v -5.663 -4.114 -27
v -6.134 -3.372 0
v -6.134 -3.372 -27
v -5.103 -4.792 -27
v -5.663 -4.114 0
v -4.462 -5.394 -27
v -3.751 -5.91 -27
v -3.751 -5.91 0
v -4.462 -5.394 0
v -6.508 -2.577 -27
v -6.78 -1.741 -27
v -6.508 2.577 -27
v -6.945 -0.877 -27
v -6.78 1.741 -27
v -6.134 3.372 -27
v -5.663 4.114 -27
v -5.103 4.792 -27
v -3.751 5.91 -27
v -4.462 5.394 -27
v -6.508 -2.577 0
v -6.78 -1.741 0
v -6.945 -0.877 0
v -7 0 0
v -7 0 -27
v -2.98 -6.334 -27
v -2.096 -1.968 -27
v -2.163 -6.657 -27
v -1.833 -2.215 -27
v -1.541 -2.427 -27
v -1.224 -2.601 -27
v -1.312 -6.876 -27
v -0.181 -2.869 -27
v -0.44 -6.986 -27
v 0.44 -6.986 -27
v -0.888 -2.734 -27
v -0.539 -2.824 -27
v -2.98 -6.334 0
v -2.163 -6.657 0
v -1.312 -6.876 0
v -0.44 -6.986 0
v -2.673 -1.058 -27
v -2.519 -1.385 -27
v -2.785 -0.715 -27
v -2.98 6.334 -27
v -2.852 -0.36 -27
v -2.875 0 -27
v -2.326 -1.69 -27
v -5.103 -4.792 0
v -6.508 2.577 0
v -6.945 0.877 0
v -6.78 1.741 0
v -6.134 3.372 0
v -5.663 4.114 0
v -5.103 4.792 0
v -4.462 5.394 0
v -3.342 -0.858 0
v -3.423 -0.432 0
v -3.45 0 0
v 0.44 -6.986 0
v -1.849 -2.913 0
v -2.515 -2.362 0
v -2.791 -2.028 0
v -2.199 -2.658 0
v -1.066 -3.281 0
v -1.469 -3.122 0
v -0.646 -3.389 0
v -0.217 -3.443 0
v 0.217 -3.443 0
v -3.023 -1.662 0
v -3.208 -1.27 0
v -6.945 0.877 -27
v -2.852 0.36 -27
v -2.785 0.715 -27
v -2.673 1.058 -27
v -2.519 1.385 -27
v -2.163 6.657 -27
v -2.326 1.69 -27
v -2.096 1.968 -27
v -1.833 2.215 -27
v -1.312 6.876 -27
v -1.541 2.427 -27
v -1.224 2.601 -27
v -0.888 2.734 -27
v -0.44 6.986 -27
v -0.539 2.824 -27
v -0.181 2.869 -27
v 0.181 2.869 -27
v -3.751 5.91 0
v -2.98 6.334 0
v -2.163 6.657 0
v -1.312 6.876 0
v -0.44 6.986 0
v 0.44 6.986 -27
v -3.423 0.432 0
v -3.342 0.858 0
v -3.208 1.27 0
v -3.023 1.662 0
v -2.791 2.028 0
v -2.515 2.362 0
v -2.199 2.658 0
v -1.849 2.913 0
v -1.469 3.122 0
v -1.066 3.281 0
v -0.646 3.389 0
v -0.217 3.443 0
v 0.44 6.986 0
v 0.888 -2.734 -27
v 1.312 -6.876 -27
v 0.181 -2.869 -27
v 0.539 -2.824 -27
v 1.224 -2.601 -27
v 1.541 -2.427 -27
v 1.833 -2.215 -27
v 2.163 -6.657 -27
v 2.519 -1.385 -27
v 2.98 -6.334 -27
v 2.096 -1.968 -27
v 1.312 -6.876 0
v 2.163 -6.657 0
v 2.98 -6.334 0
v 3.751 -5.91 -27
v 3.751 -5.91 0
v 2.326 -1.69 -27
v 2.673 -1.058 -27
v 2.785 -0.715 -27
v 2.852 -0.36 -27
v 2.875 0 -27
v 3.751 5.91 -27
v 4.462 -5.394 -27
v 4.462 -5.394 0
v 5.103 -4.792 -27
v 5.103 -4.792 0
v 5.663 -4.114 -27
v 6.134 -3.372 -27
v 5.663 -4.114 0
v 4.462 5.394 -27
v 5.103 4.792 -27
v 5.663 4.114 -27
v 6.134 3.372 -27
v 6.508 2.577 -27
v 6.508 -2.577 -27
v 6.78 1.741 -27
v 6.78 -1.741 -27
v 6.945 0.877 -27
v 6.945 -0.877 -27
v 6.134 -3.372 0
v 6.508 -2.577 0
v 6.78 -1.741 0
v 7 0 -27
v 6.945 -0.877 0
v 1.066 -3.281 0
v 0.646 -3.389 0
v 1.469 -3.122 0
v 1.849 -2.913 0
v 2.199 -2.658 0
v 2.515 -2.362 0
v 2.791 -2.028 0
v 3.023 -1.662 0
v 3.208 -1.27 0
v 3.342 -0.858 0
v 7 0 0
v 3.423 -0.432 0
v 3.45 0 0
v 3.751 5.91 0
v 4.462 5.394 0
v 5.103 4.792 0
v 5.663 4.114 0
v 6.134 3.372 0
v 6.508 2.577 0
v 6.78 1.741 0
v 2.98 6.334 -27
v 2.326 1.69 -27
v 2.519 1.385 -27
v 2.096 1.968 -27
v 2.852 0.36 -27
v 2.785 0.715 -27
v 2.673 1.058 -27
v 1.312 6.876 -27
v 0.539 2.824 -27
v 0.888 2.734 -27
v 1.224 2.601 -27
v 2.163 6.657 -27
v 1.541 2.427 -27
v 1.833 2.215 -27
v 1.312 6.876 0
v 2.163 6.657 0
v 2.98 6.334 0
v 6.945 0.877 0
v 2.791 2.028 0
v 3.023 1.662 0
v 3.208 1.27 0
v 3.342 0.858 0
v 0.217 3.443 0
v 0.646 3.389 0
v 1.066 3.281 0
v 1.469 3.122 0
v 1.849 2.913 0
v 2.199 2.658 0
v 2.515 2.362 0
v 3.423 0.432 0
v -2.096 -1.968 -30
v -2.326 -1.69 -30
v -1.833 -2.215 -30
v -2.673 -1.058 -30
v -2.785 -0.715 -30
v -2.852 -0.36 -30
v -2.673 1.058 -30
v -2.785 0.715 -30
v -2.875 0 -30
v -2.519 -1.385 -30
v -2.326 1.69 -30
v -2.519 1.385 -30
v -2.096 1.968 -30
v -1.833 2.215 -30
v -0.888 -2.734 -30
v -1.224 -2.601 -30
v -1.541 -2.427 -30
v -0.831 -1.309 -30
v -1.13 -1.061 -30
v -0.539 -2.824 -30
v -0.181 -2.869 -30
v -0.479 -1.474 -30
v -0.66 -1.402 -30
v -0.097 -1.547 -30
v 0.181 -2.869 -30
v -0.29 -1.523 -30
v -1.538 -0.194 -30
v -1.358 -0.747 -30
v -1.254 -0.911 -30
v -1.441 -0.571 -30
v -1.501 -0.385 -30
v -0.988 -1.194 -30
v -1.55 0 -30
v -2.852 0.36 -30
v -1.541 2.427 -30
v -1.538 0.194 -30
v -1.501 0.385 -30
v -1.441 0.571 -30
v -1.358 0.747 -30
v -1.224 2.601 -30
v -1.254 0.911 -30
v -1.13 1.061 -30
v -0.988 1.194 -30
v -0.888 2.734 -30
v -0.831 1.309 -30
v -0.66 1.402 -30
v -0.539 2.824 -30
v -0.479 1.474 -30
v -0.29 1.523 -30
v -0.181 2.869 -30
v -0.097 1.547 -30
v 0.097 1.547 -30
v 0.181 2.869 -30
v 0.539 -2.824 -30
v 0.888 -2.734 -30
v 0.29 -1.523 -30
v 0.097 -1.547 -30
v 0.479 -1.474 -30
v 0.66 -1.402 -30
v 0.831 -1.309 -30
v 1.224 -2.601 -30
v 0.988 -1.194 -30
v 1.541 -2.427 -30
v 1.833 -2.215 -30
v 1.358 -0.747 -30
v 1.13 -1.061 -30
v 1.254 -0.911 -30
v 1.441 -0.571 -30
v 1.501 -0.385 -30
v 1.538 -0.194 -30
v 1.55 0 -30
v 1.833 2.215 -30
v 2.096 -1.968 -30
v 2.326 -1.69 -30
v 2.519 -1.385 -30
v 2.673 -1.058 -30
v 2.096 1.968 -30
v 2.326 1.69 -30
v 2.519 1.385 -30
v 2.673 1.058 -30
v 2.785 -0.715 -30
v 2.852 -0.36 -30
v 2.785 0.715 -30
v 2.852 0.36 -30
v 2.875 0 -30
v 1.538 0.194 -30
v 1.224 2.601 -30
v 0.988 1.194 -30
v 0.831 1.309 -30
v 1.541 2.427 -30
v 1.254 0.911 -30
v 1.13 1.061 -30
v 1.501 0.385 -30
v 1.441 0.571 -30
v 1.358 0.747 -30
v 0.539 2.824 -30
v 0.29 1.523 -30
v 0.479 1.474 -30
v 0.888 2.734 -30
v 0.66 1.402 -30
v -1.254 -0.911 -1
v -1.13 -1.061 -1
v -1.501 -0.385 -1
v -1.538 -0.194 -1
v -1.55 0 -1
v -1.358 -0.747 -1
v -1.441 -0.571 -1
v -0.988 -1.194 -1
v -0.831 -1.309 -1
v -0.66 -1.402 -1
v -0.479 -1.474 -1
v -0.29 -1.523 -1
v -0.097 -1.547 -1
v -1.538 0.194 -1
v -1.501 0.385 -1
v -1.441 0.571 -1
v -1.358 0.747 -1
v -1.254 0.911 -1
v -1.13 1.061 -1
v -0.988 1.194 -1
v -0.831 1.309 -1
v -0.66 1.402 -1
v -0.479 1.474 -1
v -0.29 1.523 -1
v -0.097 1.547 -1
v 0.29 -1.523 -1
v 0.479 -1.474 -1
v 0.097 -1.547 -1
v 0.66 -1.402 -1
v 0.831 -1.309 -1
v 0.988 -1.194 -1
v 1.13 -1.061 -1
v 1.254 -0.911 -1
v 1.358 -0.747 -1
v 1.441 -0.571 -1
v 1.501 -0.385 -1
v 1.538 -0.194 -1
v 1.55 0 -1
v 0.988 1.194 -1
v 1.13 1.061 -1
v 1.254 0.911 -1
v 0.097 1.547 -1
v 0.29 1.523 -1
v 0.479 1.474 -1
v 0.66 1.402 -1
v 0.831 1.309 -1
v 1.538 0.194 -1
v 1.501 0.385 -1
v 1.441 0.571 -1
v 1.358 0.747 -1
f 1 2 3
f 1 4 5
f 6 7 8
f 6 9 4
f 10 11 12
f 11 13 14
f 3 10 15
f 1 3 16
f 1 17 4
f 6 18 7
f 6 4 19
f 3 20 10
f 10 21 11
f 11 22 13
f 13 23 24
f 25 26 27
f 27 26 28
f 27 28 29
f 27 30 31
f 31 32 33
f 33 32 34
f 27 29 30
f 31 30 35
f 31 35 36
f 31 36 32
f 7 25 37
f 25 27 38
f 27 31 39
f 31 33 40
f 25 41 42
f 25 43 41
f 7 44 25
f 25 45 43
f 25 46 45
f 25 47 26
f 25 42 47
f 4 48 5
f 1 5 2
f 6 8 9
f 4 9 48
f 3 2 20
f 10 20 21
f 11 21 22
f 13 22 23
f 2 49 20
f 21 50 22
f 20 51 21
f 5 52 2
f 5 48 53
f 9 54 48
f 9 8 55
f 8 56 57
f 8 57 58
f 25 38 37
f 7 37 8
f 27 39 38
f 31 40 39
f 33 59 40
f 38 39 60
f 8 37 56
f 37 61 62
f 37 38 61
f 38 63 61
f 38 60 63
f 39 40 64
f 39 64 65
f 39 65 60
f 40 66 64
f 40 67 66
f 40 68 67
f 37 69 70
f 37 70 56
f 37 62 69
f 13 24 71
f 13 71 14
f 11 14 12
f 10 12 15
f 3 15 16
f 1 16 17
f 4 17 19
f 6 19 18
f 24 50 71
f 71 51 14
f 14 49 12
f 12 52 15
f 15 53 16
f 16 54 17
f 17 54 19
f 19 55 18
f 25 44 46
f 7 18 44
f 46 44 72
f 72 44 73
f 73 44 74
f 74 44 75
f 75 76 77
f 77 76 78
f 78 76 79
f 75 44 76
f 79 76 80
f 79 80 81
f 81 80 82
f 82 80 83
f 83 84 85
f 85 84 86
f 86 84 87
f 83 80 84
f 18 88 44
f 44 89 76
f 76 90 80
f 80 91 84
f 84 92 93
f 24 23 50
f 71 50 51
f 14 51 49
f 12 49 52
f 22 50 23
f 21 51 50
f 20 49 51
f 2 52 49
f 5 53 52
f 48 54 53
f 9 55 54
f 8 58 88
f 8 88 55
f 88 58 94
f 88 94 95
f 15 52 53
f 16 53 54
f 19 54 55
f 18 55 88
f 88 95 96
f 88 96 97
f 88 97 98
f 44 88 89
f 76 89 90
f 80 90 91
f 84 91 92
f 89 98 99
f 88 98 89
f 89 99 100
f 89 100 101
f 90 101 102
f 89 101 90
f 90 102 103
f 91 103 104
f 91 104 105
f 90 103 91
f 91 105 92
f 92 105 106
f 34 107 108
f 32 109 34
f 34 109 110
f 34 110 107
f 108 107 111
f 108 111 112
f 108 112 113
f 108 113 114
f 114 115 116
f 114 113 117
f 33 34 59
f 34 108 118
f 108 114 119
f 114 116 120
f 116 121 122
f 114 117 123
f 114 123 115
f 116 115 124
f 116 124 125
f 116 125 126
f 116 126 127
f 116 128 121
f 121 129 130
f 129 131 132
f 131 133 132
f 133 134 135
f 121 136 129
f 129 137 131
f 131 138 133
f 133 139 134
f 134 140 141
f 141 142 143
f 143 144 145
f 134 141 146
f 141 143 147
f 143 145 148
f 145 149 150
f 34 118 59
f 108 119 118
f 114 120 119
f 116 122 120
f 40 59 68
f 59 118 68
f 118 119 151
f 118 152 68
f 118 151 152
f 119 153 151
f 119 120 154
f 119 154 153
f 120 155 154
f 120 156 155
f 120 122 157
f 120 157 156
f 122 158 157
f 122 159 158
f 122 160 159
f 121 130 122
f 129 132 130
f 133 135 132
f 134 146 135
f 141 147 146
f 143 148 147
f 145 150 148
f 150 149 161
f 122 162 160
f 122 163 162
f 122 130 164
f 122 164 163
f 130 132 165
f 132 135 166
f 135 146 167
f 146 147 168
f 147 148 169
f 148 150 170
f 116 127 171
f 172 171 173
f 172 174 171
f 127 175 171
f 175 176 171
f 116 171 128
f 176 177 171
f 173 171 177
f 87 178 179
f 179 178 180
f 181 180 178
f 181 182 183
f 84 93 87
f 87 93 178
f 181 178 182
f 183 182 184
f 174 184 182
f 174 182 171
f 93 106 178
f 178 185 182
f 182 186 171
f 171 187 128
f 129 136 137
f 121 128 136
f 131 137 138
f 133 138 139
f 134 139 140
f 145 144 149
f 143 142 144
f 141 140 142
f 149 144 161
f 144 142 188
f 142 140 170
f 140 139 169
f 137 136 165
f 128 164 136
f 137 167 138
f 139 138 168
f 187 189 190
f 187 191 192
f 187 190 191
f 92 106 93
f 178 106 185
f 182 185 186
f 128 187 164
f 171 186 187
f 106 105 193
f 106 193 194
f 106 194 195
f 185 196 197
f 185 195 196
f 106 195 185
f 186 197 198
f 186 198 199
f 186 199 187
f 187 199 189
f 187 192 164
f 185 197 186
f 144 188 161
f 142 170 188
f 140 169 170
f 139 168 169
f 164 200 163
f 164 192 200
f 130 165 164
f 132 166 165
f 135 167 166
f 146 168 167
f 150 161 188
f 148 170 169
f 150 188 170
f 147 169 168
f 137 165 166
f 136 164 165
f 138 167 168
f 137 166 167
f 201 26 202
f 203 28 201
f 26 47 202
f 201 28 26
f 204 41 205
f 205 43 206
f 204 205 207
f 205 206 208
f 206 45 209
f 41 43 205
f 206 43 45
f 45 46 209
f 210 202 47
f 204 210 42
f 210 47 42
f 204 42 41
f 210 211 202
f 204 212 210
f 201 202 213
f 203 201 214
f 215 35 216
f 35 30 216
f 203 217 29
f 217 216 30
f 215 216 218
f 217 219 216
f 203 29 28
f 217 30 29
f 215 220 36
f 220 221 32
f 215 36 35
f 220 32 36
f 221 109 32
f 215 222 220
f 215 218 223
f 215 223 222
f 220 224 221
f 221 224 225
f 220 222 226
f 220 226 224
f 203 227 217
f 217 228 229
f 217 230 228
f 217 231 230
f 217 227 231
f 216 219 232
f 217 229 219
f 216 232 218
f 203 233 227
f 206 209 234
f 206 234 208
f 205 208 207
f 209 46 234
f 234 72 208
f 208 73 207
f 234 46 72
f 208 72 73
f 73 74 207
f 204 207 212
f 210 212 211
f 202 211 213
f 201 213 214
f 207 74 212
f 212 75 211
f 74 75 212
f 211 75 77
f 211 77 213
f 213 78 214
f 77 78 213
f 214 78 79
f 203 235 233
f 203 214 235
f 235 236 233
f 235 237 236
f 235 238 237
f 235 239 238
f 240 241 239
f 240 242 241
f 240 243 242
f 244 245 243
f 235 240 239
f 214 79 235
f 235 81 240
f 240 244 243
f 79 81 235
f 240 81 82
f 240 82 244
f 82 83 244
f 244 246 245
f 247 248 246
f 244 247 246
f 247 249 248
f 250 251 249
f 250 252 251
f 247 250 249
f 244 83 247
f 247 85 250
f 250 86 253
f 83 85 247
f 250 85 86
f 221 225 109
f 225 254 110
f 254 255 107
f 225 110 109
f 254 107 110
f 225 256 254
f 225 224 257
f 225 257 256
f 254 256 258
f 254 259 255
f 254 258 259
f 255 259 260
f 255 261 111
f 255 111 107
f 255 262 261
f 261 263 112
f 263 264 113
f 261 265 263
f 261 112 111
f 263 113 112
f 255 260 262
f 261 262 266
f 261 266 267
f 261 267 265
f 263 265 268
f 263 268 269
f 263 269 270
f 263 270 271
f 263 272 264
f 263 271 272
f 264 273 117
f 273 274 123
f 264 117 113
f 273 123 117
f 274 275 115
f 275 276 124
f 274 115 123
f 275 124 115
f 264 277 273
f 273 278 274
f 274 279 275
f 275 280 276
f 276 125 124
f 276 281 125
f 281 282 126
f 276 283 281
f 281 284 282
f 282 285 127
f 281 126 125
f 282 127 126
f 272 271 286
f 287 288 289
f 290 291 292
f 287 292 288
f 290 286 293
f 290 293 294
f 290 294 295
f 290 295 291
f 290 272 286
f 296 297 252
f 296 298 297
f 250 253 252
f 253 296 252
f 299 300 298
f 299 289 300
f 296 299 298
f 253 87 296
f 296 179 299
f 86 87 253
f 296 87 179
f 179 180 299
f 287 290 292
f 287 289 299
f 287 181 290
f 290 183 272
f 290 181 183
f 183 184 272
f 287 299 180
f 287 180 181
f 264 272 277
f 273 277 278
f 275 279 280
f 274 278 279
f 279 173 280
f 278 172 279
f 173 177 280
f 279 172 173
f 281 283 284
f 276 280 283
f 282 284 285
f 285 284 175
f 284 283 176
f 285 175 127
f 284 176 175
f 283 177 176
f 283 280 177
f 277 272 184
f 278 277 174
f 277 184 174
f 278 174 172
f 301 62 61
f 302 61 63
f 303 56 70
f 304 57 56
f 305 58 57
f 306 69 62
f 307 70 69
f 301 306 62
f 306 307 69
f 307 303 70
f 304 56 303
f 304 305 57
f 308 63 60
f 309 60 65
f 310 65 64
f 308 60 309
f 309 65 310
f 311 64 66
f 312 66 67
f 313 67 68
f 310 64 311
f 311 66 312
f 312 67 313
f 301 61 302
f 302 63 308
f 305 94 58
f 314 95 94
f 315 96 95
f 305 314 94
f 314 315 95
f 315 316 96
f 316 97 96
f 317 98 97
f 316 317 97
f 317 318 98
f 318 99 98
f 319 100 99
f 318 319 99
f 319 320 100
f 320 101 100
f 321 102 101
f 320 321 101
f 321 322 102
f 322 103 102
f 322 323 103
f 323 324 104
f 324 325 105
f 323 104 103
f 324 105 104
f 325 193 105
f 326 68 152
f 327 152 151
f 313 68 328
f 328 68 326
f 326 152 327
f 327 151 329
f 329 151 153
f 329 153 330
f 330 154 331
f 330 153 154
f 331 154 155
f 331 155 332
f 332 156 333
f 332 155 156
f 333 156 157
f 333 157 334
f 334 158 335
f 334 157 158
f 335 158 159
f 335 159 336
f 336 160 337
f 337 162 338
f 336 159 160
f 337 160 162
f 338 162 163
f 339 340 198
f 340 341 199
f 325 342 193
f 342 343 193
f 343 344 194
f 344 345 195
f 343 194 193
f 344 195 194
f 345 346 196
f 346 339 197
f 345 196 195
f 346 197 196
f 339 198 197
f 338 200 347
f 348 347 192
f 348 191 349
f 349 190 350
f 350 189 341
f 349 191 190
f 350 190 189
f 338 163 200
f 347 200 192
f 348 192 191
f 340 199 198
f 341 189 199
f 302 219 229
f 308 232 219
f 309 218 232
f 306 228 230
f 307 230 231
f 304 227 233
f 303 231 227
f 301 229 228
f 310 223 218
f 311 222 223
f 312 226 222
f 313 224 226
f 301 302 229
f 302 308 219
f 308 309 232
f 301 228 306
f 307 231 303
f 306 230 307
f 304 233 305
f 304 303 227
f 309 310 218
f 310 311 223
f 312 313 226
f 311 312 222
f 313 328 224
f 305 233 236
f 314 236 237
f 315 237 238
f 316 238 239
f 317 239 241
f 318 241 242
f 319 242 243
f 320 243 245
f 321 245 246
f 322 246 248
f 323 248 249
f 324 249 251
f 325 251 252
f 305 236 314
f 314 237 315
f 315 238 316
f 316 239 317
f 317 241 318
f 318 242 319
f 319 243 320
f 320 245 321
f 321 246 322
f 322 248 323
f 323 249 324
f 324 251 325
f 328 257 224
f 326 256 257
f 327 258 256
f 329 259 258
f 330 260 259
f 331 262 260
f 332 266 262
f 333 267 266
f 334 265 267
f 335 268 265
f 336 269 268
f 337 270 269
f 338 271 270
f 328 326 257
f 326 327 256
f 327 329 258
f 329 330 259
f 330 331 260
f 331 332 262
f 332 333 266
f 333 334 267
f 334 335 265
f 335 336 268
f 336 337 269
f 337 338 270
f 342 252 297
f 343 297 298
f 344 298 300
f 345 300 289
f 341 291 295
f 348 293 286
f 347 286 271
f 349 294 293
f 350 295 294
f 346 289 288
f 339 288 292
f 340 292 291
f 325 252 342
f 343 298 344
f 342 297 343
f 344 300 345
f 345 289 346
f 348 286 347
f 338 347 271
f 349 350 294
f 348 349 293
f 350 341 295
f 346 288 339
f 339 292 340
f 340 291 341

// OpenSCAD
$fn = 50;


difference() {
	union() {
		translate(v = [0, 0, -27.0000000000]) {
			cylinder(h = 27, r = 7.0000000000);
		}
		#translate(v = [0, 0, -30.0000000000]) {
			cylinder(h = 30, r = 2.8750000000);
		}
	}
	union() {
		translate(v = [0, 0, 0]) {
			rotate(a = [0, 0, 0]) {
				difference() {
					union() {
						translate(v = [0, 0, -30.0000000000]) {
							cylinder(h = 30, r = 1.2500000000);
						}
						translate(v = [0, 0, -1.0000000000]) {
							cylinder(h = 1.0000000000, r1 = 1.5500000000, r2 = 3.4500000000);
						}
						translate(v = [0, 0, -30.0000000000]) {
							cylinder(h = 30, r = 1.5500000000);
						}
						translate(v = [0, 0, -30.0000000000]) {
							cylinder(h = 30, r = 1.2500000000);
						}
					}
					union();
				}
			}
		}
	}
}
